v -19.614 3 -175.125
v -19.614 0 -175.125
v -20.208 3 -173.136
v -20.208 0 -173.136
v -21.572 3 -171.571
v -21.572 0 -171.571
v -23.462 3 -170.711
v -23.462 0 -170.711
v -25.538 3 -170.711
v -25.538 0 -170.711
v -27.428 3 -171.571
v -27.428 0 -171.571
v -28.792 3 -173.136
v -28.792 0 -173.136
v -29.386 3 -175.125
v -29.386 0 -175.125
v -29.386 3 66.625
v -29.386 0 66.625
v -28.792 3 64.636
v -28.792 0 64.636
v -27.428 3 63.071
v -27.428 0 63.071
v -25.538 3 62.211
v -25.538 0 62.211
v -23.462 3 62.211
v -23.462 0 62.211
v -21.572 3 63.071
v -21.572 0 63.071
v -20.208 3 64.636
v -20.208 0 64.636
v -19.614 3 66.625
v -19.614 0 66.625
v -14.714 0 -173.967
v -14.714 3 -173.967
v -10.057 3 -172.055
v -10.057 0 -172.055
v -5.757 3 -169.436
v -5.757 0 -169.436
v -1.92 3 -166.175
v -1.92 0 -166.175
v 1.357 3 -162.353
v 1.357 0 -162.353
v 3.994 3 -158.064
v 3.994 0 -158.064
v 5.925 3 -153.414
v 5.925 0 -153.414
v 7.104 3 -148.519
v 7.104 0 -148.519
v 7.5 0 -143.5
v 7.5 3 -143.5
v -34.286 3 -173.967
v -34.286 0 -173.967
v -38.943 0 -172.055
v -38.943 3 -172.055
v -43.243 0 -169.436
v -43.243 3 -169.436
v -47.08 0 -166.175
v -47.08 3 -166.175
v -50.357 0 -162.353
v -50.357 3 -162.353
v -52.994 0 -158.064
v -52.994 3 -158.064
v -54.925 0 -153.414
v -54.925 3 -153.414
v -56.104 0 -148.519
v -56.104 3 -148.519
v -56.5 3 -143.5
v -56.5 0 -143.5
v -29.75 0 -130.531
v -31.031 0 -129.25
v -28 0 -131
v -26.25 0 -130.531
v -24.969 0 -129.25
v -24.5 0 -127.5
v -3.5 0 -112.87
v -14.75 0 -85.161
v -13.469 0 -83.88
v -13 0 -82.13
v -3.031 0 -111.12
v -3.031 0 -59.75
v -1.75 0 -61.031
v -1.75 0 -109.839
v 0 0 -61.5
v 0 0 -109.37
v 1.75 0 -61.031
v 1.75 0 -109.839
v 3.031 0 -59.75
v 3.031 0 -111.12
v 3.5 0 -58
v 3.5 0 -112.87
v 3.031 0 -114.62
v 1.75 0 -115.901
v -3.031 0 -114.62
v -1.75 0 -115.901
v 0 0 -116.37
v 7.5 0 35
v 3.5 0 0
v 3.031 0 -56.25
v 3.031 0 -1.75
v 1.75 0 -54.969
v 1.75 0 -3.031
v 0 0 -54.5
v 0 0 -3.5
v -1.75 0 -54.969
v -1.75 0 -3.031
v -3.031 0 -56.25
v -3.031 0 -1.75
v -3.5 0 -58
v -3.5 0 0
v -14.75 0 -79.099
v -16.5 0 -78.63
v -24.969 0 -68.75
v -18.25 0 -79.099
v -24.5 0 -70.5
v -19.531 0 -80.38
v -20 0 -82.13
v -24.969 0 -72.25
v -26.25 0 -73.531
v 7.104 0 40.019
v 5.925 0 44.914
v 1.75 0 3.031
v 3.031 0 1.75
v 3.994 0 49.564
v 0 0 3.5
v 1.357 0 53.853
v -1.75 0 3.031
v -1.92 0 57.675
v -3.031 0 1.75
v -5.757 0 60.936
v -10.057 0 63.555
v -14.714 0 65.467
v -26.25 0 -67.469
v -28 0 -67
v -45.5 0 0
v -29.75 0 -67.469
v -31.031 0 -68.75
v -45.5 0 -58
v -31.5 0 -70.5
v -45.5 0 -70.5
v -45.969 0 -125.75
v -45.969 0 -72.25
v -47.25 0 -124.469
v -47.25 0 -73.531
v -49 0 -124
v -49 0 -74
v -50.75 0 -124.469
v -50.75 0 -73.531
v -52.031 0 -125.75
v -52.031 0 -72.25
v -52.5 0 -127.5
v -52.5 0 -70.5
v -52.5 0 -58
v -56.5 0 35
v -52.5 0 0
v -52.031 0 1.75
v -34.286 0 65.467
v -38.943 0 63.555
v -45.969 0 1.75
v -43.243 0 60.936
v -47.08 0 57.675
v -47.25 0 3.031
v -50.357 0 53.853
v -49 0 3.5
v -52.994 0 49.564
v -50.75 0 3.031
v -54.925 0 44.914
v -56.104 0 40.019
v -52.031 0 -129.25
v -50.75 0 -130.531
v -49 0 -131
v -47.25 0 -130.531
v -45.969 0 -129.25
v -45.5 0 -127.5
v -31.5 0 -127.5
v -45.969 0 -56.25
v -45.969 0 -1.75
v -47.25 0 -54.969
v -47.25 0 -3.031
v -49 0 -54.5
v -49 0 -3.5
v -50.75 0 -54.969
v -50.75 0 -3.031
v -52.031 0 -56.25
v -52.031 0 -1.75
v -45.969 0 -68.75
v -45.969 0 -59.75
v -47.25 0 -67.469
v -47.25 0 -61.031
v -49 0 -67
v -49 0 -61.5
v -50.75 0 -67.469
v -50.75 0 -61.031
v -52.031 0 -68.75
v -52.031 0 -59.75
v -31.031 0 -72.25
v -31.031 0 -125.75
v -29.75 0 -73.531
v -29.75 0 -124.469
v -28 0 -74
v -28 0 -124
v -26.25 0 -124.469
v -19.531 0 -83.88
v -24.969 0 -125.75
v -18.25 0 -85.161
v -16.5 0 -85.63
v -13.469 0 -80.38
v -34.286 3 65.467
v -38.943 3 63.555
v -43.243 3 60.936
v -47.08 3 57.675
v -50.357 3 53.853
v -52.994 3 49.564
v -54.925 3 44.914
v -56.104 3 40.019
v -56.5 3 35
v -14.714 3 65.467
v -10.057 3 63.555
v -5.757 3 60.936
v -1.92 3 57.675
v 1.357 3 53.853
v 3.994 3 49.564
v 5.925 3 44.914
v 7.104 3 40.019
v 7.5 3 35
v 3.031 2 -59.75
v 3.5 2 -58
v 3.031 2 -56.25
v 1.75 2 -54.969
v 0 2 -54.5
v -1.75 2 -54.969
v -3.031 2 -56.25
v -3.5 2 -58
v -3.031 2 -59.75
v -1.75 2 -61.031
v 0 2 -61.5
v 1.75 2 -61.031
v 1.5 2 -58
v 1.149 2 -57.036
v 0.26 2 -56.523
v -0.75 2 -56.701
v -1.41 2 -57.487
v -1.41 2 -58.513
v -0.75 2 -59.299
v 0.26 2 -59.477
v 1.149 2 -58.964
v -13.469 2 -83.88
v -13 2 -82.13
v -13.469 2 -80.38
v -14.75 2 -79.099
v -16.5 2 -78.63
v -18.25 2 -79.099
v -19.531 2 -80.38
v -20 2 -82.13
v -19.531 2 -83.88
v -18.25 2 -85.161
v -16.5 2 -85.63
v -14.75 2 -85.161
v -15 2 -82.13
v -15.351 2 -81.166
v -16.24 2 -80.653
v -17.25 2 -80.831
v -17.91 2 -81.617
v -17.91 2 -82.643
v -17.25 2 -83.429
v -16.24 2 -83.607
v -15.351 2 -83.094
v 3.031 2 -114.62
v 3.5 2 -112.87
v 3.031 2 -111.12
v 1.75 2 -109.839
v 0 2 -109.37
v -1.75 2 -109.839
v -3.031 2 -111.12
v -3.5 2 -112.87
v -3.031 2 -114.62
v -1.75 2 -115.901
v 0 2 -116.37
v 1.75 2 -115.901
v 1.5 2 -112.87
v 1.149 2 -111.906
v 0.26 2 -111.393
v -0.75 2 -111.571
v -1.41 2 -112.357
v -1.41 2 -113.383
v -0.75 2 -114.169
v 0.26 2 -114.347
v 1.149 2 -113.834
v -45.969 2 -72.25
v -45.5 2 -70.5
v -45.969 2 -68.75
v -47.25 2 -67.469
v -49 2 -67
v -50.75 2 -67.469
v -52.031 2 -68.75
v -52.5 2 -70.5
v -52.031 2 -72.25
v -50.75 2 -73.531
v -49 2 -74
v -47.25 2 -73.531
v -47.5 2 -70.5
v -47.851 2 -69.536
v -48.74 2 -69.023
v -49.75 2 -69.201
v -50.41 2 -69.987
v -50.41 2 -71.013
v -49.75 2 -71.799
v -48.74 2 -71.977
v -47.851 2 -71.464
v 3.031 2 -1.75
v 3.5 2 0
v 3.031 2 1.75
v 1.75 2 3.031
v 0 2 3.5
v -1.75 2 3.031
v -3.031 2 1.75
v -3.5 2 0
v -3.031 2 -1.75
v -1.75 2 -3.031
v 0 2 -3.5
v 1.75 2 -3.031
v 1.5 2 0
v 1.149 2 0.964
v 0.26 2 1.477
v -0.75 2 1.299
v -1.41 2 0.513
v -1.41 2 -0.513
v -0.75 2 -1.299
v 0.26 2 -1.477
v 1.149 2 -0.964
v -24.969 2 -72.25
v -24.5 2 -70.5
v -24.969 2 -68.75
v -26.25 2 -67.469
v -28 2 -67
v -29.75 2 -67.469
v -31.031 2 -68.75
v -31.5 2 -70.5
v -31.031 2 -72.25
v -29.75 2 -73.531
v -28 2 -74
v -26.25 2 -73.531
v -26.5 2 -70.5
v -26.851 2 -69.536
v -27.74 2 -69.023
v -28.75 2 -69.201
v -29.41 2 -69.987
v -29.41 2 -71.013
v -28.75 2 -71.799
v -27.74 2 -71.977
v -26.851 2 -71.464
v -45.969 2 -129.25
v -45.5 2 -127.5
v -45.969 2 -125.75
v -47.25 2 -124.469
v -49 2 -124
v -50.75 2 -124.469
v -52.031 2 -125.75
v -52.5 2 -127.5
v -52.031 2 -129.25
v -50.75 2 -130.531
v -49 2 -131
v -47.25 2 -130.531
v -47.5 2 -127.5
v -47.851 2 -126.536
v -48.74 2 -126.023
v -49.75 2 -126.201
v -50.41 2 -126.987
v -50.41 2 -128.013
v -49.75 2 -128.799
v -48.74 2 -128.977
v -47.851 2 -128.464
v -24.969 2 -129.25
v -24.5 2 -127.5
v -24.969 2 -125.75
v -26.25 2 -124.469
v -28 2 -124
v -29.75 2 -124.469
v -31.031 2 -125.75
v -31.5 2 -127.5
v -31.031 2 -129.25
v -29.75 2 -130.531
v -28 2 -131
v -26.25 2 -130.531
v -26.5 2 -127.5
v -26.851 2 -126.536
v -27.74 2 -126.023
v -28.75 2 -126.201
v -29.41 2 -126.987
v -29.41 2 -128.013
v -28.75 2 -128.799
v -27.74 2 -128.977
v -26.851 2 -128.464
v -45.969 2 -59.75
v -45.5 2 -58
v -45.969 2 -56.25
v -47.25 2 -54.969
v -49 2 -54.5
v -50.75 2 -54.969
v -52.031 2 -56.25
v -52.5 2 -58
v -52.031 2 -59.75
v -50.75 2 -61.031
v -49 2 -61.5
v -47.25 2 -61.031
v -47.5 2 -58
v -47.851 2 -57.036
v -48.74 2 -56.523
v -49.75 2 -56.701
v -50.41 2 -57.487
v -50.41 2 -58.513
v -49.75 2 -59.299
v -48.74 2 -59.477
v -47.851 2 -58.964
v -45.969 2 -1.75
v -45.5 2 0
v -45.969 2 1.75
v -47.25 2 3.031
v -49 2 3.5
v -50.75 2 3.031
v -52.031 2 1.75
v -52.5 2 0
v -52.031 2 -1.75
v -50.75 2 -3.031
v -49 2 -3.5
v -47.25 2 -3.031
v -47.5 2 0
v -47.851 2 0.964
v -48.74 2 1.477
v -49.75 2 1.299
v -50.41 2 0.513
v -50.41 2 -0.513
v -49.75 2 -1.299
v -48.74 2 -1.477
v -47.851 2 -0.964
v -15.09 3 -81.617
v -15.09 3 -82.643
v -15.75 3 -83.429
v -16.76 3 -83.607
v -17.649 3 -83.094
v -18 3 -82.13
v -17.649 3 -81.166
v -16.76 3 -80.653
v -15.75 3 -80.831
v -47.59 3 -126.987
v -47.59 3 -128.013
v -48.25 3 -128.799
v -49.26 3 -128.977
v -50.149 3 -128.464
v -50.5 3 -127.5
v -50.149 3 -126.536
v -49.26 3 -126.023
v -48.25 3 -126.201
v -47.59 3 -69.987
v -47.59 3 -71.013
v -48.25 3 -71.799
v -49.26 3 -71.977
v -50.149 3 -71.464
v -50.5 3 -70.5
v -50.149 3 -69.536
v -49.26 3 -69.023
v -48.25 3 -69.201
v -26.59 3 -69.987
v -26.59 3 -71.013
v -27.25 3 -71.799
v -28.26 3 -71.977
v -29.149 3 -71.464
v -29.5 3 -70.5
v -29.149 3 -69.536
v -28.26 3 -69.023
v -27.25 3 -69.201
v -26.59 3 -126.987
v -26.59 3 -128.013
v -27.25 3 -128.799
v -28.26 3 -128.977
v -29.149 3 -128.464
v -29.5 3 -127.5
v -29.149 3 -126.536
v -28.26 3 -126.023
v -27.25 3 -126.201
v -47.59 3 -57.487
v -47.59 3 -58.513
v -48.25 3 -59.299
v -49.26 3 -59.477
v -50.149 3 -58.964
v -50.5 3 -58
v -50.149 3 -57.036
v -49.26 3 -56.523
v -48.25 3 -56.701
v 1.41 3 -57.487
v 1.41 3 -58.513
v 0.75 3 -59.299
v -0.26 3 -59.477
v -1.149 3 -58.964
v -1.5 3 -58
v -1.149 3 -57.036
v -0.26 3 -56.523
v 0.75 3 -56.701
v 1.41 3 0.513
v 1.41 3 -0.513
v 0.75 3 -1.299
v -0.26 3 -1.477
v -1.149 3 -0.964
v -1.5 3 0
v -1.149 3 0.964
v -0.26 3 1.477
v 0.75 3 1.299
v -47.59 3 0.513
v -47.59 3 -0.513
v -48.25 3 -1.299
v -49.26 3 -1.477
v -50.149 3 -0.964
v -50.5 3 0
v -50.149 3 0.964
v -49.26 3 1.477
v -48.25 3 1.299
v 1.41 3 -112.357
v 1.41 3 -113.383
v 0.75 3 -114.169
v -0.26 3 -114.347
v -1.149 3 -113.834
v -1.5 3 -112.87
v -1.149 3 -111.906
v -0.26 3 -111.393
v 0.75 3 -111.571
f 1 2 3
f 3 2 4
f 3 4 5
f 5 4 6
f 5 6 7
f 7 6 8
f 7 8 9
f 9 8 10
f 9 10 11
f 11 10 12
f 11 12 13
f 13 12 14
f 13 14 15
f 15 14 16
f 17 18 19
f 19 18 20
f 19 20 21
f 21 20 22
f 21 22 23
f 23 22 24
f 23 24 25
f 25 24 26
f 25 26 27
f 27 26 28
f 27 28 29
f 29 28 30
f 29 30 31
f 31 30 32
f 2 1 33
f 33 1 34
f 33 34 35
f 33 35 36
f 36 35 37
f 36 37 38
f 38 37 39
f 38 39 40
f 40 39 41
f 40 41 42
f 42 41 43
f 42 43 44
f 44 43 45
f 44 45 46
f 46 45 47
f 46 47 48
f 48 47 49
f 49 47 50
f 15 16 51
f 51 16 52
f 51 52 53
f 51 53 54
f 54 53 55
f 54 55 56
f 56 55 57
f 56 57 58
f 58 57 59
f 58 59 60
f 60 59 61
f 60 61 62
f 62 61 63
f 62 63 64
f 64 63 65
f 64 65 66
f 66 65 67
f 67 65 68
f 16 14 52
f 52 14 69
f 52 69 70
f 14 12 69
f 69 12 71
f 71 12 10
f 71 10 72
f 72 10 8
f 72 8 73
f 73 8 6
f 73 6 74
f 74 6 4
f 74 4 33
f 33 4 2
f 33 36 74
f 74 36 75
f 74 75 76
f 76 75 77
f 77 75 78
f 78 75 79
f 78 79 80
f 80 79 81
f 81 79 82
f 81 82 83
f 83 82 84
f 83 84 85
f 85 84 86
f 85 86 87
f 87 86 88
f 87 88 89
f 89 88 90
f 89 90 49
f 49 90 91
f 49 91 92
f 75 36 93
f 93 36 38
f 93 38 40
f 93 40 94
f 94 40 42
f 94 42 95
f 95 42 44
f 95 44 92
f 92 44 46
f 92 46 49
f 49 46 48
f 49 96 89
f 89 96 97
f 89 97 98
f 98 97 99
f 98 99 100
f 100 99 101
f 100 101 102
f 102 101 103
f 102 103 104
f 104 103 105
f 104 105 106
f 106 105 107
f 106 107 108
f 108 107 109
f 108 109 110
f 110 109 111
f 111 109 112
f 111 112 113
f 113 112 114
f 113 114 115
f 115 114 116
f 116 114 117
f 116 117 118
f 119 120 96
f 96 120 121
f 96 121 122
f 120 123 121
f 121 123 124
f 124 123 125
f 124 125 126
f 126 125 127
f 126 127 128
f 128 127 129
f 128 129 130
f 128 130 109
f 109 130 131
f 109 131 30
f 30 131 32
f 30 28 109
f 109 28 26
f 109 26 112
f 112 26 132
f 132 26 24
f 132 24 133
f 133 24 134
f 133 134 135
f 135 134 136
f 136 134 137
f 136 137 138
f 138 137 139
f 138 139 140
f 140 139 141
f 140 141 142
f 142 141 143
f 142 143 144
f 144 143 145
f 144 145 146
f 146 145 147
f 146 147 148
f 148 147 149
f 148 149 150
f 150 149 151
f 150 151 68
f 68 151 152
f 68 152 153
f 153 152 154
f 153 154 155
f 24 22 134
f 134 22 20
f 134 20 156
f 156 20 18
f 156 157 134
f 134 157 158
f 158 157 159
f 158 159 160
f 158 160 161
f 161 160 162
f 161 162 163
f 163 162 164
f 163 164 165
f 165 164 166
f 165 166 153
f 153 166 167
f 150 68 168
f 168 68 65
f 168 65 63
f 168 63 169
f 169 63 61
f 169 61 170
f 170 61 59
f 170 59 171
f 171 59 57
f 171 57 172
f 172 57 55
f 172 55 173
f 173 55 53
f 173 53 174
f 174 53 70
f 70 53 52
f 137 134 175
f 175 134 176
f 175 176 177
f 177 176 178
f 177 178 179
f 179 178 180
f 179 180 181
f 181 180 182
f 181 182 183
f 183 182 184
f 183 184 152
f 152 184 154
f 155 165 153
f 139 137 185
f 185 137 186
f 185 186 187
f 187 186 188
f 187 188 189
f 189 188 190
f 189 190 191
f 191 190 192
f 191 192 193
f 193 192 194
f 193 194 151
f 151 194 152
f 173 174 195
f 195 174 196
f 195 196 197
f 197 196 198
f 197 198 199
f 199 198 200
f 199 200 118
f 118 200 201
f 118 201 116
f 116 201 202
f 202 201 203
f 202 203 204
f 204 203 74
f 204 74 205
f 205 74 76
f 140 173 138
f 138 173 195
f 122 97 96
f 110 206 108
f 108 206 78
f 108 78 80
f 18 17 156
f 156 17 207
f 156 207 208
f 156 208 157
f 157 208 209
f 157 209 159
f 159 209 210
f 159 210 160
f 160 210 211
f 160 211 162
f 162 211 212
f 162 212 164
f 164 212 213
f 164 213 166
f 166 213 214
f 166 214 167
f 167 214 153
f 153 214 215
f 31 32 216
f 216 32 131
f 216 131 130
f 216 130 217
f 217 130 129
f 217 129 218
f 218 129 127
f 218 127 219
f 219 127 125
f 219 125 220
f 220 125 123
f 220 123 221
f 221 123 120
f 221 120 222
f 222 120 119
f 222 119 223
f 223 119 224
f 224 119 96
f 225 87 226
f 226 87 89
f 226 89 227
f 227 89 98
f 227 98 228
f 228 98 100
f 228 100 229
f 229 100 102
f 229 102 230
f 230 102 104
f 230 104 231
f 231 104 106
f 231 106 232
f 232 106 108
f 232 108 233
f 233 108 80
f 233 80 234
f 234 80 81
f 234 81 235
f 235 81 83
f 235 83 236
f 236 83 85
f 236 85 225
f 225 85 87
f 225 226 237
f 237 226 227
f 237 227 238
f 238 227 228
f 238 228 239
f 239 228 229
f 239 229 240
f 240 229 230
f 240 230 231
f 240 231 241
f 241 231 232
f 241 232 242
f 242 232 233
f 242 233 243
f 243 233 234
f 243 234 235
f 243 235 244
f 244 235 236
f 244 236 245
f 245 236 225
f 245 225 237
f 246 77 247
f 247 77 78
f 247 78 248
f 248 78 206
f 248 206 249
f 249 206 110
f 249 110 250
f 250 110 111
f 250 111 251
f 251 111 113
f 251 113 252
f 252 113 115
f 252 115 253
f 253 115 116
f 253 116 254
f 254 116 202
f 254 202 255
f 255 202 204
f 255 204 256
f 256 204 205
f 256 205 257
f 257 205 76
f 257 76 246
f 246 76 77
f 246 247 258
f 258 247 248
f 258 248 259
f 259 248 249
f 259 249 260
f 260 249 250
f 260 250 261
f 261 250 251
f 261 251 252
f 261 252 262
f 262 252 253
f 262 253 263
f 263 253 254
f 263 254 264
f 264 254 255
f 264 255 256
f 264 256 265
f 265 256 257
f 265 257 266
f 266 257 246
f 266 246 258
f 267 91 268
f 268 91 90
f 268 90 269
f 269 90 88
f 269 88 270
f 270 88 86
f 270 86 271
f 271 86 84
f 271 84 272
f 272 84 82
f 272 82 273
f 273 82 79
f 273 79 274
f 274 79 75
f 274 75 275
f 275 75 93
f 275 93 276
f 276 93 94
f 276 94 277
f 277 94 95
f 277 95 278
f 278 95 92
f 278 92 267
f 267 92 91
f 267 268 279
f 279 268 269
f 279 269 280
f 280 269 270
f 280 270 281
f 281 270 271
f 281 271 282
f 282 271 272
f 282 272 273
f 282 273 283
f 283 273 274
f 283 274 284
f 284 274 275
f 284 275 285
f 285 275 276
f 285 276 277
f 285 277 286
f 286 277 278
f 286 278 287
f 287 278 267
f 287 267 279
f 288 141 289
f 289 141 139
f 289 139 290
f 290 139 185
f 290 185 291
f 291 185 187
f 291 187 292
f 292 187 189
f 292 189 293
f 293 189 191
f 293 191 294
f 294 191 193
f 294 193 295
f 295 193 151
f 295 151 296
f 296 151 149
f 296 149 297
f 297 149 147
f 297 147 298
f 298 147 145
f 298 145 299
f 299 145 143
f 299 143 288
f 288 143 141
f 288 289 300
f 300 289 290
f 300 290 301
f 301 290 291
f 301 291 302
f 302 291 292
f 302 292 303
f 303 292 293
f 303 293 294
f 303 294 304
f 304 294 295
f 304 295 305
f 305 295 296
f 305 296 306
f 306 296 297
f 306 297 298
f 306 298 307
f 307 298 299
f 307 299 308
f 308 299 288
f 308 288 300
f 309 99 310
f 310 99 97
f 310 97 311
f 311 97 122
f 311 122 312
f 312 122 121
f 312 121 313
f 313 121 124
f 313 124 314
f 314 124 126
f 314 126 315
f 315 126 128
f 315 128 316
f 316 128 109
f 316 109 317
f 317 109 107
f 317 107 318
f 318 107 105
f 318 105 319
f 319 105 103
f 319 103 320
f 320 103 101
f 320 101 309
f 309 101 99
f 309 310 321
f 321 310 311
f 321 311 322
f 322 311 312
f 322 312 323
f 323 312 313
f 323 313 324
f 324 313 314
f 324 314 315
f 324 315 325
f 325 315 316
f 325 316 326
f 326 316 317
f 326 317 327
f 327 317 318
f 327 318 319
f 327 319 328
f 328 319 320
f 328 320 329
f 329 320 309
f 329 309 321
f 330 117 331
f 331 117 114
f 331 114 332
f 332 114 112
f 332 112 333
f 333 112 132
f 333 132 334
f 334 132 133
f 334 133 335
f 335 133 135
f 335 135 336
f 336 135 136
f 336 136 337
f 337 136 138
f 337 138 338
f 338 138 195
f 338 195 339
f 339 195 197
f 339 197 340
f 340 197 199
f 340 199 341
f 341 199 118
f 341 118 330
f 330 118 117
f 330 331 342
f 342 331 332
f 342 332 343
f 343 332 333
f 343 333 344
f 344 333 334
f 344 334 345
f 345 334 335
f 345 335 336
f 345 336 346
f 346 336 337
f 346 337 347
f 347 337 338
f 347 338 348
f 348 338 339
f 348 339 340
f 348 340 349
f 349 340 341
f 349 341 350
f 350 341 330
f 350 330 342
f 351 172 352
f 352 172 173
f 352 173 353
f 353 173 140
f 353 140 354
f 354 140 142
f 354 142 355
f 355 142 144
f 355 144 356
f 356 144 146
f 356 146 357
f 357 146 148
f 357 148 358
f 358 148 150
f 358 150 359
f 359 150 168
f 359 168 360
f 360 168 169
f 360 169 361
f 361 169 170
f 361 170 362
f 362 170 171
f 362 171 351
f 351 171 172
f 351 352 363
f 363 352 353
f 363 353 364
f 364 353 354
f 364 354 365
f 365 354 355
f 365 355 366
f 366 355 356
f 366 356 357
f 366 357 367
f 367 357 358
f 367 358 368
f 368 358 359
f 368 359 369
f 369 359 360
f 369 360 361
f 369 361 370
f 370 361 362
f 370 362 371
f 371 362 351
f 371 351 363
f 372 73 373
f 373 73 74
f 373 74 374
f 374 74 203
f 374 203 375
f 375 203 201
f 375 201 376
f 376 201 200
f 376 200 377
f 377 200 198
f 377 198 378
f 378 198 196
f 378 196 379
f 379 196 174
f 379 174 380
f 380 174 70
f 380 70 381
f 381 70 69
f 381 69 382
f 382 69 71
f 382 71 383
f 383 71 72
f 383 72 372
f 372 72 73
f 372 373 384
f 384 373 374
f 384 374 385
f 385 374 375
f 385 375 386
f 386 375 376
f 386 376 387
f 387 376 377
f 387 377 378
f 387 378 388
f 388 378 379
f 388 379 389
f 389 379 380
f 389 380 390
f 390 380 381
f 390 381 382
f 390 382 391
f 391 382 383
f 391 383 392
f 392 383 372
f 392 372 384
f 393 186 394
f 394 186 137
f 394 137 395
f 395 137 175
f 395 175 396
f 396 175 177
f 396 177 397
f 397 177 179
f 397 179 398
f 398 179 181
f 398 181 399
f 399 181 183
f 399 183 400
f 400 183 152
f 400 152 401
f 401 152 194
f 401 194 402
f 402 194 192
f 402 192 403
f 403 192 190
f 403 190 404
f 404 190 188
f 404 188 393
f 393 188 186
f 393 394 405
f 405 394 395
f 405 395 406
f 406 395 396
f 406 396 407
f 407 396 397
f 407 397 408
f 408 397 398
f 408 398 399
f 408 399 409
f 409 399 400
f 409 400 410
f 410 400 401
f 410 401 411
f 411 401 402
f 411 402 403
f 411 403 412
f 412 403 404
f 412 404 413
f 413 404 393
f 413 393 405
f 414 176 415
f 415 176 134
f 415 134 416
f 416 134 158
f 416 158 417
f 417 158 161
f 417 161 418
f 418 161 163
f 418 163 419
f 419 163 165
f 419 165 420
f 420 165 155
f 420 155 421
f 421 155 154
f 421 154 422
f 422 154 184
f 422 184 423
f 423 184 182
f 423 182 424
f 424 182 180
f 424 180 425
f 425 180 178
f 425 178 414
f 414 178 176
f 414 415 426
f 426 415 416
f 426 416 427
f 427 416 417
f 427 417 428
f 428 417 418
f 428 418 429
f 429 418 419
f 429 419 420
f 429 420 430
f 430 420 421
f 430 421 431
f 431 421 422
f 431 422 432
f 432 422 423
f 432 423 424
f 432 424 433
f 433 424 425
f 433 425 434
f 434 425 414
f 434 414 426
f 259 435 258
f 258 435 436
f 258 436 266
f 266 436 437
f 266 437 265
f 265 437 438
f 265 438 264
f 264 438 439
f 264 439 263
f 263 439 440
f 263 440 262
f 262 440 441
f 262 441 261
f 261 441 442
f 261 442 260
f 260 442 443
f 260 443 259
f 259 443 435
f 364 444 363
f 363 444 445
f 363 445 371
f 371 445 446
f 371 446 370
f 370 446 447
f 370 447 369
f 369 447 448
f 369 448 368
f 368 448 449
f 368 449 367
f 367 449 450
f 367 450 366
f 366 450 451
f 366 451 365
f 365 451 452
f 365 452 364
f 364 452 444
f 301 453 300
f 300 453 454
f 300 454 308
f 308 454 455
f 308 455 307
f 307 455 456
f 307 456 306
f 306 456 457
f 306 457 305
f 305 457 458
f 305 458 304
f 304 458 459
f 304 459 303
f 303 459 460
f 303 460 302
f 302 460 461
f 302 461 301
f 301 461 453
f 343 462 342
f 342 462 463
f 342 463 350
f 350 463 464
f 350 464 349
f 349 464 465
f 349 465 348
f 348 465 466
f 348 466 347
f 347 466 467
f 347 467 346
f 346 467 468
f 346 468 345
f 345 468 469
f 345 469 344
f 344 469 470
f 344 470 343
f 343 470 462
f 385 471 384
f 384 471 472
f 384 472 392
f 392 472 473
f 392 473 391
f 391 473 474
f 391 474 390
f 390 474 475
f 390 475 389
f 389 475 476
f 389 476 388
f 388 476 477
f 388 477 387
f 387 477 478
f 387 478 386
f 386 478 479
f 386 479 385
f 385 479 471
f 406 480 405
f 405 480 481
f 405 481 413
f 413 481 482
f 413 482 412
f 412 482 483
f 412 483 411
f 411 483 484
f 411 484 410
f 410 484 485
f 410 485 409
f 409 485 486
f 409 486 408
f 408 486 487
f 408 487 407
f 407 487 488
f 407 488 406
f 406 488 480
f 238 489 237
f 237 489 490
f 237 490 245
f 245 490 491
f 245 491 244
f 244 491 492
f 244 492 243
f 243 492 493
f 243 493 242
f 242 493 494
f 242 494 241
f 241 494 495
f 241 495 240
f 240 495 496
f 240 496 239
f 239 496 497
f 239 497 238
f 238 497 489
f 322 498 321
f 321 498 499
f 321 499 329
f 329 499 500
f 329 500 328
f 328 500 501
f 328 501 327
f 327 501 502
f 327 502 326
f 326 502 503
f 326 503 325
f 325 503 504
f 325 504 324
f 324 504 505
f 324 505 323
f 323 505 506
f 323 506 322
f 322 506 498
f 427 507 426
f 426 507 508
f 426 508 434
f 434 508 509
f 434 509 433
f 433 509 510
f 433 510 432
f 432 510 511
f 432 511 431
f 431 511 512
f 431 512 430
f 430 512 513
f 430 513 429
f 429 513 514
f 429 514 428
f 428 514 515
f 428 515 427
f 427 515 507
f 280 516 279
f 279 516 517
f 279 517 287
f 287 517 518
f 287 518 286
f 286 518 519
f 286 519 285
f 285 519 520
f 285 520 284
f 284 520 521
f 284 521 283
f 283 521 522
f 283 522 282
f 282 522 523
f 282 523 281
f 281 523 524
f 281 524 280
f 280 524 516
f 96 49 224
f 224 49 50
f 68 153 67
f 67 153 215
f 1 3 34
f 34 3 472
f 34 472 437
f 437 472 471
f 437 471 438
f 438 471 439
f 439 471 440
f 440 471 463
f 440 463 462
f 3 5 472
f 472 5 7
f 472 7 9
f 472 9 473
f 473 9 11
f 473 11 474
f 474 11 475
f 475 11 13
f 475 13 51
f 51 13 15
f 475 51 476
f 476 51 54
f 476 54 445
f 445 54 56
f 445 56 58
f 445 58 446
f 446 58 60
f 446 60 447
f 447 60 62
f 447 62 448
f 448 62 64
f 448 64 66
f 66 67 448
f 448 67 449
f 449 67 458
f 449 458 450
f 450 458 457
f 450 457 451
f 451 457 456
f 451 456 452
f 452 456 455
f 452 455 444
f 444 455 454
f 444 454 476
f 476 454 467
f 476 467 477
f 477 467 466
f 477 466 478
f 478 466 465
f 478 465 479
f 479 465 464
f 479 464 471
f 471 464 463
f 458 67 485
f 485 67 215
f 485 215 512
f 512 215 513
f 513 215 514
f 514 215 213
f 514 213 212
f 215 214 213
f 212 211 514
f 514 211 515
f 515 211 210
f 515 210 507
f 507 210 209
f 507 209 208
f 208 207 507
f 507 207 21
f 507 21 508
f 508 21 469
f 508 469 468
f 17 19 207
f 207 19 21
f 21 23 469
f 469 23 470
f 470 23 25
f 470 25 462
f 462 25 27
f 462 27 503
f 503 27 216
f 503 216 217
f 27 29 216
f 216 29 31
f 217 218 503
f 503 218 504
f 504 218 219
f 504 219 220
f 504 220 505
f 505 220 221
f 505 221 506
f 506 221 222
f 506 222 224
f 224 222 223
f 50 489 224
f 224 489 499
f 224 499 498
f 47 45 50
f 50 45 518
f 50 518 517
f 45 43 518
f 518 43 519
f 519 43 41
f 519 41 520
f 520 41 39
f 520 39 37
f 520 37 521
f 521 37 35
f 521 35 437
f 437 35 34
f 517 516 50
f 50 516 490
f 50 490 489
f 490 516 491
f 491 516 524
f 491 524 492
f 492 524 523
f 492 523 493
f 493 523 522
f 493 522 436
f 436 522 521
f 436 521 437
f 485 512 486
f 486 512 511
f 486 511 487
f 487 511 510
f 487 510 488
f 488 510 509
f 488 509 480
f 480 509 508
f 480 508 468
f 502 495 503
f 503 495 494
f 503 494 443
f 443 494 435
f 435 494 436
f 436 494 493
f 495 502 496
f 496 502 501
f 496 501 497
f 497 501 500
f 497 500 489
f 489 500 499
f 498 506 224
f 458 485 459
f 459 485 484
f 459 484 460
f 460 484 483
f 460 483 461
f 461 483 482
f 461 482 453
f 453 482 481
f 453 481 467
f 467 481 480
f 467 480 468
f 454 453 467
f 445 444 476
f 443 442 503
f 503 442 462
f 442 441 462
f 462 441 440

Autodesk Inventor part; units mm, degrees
ref_plane "YZ Plane" through (0, 0, 0) normal (1, 0, 0) x (0, 1, 0)
ref_plane "XZ Plane" through (0, 0, 0) normal (0, 1, 0) x (-1, 0, 0)
ref_plane "XY Plane" through (0, 0, 0) normal (0, 0, 1) x (1, 0, 0)
sketch "Sketch1" plane through (0, 0, 0) normal (0, 1, 0) x (-1, 0, 0)
  line L0 (0, 0) -> (49, 0) construction
  line L1 (49, 0) -> (49, -58) construction
  line L2 (49, -58) -> (0, -58) construction
  line L3 (0, -58) -> (0, 0) construction
  line L4 (53.5, 32) -> (-4.5, 32) construction
  line L5 (-4.5, 32) -> (-4.5, -62) construction
  line L6 (-4.5, -62) -> (53.5, -62) construction
  line L7 (53.5, -62) -> (53.5, 32) construction
  line L8 (53.5, -58) -> (-4.5, -58) construction
  line L9 (24.5, -62) -> (24.5, -133) construction
  line L10 (49, -70.5) -> (28, -70.5) construction
  line L11 (28, -70.5) -> (28, -127.5) construction
  line L12 (28, -127.5) -> (49, -127.5) construction
  line L13 (49, -127.5) -> (49, -70.5) construction
  line L14 (24.5, -99) -> (28, -99) construction
  line L15 (45.5, -127.5) -> (31.5, -127.5) construction
  line L16 (31.5, -127.5) -> (31.5, -140.5) construction
  line L17 (31.5, -140.5) -> (45.5, -140.5) construction
  line L18 (45.5, -140.5) -> (45.5, -127.5) construction
  line L19 (16.5, -82.13) -> (0, -82.13) construction
  line L20 (0, -82.13) -> (0, -112.87) construction
  line L21 (0, -112.87) -> (16.5, -112.87) construction
  line L22 (16.5, -112.87) -> (16.5, -82.13) construction
  line L23 (24.5, -97.5) -> (16.5, -97.5) construction
  circle A0 centre (49, -127.5) radius 1.5
  circle A1 centre (49, -70.5) radius 1.5
  circle A2 centre (28, -70.5) radius 1.5
  circle A3 centre (28, -127.5) radius 1.5
  circle A4 centre (49, -58) radius 1.5
  circle A5 centre (0, -58) radius 1.5
  circle A6 centre (0, 0) radius 1.5
  circle A7 centre (49, 0) radius 1.5
  circle A8 centre (16.5, -82.13) radius 1.5
  circle A9 centre (0, -112.87) radius 1.5
  line L24 (53.5, 32) -> (-4.5, 32) construction
  line L25 (-4.5, 32) -> (-4.5, -140.5) construction
  line L26 (-4.5, -140.5) -> (53.5, -140.5) construction
  line L27 (53.5, -140.5) -> (53.5, 32) construction
  line L28 (56.5, 35) -> (-7.5, 35) construction
  line L29 (-7.5, 35) -> (-7.5, -143.5)
  line L30 (-7.5, -143.5) -> (56.5, -143.5) construction
  line L31 (56.5, -143.5) -> (56.5, 35)
  arc A10 (56.5, 35) -> (-7.5, 35) centre (24.5, 35) ccw
  arc A11 (-7.5, -143.5) -> (56.5, -143.5) centre (24.5, -143.5) ccw
  point P0 (24.5, -58)
  point P1 (38.5, -127.5)
  point P2 (38.5, -140.5)
  point P3 (53.5, -15)
  point P4 (-4.5, -15)
  point P5 (24.5, 32)
  dimension "d0" = 49
  dimension "d1" = 58
  dimension "d2" = 58
  dimension "d3" = 94
  dimension "d7" = 71
  dimension "d8" = 21
  dimension "d9" = 57
  dimension "d10" = 37
  dimension "d11" = 3.5
  dimension "d12" = 14
  dimension "d13" = 13
  dimension "d14" = 16.5
  dimension "d15" = 30.74
  dimension "d16" = 8
  dimension "d17" = 3
  dimension "d18" = 3
  dimension "d19" = 3
  dimension "d20" = 3
  dimension "d21" = 3
  dimension "d22" = 3
  dimension "d23" = 3
  dimension "d24" = 3
  dimension "d25" = 3
  dimension "d26" = 3
  dimension "d27" = 3
  dimension "d43" = 4
extrude "Extrusion1" add sketch "Sketch1" along normal blind 3
sketch "Sketch2" plane through (0, 0, 0) normal (0, -1, 0) x (1, 0, 0)
  arc A0 (-56.5, -143.5) -> (7.5, -143.5) centre (-24.5, -143.5) ccw projected
  line L0 (7.5, 35) -> (7.5, -143.5) projected
  arc A1 (7.5, 35) -> (-56.5, 35) centre (-24.5, 35) ccw projected
  line L1 (-56.5, -143.5) -> (-56.5, 35) projected
  circle A2 centre (0, -112.87) radius 1.5 projected
  circle A3 centre (-49, 0) radius 1.5 projected
  circle A4 centre (0, 0) radius 1.5 projected
  circle A5 centre (0, -58) radius 1.5 projected
  circle A6 centre (-49, -58) radius 1.5 projected
  circle A7 centre (-28, -127.5) radius 1.5 projected
  circle A8 centre (-28, -70.5) radius 1.5 projected
  circle A9 centre (-49, -70.5) radius 1.5 projected
  circle A10 centre (-49, -127.5) radius 1.5 projected
  circle A11 centre (-16.5, -82.13) radius 1.5 projected
  circle A12 centre (0, 0) radius 3.5
  circle A13 centre (-49, 0) radius 3.5
  circle A14 centre (-49, -58) radius 3.5
  circle A15 centre (0, -58) radius 3.5
  circle A16 centre (-28, -70.5) radius 3.5
  circle A17 centre (-49, -70.5) radius 3.5
  circle A18 centre (-16.5, -82.13) radius 3.5
  circle A19 centre (0, -112.87) radius 3.5
  circle A20 centre (-28, -127.5) radius 3.5
  circle A21 centre (-49, -127.5) radius 3.5
  dimension "d31" = 2
  dimension "d32" = 2
  dimension "d33" = 2
  dimension "d34" = 2
  dimension "d35" = 2
  dimension "d36" = 2
  dimension "d37" = 2
  dimension "d38" = 2
  dimension "d39" = 2
  dimension "d40" = 2
extrude "Extrusion2" cut sketch "Sketch2" against normal blind 2 contours A12 | A13 | A14 | A15 | A16 | A17 | A18 | A19 | A20 | A21
sketch "Sketch3" plane through (0, 3, 0) normal (0, 1, 0) x (1, 0, 0)
  arc A0 (-56.5, -35) -> (7.5, -35) centre (-24.5, -35) ccw projected
  circle A1 centre (-24.5, -67) radius 4.9
  arc A2 (7.5, 143.5) -> (-56.5, 143.5) centre (-24.5, 143.5) ccw projected
  circle A3 centre (-24.5, 175.5) radius 4.9
  point P0 (0, 0)
  point P1 (-29.3856, 175.1248)
  point P2 (-19.6144, 175.1248)
  point P3 (-19.6144, -66.6248)
  point P4 (-29.3856, -66.6248)
  dimension "d44" = 9.8
  dimension "d45" = 9.8
extrude "Extrusion3" cut sketch "Sketch3" against normal through all contours A1 A0 | A3 A2 picked at (-24.5, -65.3388) picked at (-24.5, 173.8388)
properties part number "electronics_layout_v2"
